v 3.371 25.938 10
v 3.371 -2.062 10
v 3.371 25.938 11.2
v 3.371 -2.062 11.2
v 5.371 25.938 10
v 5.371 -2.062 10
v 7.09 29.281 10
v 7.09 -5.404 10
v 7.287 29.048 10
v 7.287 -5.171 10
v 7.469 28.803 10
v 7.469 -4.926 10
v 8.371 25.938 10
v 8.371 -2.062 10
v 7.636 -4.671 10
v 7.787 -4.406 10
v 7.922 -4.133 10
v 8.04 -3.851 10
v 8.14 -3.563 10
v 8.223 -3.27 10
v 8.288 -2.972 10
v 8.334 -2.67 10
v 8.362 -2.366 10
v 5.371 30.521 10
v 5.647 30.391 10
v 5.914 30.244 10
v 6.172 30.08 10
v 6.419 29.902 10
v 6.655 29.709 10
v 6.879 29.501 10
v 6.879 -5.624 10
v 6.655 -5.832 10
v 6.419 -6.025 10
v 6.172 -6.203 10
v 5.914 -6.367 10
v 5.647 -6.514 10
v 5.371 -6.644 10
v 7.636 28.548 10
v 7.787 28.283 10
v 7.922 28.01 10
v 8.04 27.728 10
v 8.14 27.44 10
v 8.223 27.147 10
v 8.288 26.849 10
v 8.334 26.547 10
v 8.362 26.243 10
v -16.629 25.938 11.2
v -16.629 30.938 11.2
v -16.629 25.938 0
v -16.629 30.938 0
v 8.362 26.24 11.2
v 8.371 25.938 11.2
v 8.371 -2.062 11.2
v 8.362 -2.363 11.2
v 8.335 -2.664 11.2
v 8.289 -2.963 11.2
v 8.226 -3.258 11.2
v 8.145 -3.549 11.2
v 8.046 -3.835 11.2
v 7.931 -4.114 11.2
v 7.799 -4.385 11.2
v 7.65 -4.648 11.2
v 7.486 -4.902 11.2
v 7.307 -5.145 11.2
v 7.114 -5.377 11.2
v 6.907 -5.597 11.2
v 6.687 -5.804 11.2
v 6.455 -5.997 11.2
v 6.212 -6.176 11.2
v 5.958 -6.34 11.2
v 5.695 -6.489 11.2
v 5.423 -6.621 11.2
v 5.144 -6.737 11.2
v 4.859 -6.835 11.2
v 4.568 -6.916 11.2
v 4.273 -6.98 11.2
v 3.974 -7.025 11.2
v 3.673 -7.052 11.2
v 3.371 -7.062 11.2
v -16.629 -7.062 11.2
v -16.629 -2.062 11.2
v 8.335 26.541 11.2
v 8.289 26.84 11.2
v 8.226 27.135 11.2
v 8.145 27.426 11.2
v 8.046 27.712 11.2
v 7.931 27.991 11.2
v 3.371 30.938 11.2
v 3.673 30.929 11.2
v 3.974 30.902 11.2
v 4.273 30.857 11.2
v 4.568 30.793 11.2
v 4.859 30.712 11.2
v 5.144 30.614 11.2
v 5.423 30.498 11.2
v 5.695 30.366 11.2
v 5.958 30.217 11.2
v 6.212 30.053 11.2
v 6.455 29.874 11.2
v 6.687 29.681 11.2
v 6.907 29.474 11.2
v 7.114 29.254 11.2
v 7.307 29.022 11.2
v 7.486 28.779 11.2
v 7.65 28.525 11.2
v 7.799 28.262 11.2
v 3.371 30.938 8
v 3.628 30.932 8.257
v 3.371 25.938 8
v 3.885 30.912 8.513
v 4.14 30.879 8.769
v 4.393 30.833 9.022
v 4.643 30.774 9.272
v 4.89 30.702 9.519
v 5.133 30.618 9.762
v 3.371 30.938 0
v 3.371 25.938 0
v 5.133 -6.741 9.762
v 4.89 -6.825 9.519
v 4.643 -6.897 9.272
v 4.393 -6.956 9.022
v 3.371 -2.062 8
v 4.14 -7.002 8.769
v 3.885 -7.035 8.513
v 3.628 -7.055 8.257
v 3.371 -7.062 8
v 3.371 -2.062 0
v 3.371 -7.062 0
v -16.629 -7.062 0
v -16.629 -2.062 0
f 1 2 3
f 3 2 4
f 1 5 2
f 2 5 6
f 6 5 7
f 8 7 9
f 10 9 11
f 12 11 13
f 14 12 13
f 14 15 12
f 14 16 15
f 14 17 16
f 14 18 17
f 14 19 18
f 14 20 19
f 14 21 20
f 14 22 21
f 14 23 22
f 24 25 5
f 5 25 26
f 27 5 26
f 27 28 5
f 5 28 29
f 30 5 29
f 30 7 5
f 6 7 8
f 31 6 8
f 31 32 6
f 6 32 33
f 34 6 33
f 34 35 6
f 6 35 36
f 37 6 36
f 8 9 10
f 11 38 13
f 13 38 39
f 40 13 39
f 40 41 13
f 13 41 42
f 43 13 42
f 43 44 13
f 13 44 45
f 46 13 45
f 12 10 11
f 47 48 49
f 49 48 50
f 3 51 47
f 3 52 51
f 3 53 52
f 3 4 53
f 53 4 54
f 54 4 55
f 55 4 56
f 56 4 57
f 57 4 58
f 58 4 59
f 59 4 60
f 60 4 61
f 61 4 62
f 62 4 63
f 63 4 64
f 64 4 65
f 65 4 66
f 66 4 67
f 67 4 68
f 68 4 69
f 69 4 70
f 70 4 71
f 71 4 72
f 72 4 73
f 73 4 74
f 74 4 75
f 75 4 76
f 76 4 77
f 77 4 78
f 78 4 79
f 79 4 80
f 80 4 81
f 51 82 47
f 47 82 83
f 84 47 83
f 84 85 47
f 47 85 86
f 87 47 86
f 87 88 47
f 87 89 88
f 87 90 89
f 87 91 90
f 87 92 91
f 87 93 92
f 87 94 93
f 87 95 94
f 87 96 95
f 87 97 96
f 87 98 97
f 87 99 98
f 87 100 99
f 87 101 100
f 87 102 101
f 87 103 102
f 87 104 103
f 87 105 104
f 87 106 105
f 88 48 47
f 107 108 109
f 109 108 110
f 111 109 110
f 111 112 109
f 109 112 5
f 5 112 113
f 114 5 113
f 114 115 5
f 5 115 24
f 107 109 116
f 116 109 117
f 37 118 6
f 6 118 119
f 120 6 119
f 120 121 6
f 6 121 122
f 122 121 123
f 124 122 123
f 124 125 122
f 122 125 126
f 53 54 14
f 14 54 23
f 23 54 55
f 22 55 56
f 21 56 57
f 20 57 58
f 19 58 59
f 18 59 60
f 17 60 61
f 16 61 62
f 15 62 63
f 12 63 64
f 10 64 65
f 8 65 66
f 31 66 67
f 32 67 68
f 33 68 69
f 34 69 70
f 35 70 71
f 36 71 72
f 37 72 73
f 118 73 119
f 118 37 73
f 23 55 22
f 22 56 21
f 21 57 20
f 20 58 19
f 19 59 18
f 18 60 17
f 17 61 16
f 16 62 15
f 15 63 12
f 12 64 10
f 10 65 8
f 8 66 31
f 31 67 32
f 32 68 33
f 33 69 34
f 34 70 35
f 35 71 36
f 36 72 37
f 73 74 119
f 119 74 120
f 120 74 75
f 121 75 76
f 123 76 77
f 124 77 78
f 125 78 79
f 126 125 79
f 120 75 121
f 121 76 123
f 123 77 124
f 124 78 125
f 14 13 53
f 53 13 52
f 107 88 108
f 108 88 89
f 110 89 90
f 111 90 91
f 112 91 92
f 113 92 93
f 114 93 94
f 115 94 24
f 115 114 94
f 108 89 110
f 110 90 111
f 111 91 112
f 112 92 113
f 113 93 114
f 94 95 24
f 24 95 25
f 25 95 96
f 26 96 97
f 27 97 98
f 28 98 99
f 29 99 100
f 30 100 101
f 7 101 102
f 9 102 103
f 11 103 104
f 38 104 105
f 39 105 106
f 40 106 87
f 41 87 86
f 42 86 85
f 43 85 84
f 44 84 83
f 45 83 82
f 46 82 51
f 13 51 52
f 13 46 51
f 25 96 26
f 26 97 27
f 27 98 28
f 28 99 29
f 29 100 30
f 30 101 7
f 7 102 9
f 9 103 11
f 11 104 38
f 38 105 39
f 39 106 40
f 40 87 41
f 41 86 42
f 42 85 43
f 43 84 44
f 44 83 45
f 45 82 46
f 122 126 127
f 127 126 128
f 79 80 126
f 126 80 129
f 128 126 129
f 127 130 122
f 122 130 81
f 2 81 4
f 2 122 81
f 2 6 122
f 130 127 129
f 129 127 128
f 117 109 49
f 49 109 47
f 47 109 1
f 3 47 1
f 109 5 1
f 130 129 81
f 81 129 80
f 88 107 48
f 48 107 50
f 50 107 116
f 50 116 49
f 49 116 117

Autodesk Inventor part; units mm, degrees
ref_plane "YZ Plane" through (0, 0, 0) normal (1, 0, 0) x (0, 1, 0)
ref_plane "XZ Plane" through (0, 0, 0) normal (0, 1, 0) x (-1, 0, 0)
ref_plane "XY Plane" through (0, 0, 0) normal (0, 0, 1) x (1, 0, 0)
sketch "Sketch1" plane through (0, 0, 0) normal (0, 0, 1) x (1, 0, 0)
  line L0 (-16.6287, 30.9385) -> (3.3713, 30.9385)
  line L1 (3.3713, 30.9385) -> (3.3713, 25.9385)
  line L2 (3.3713, 25.9385) -> (-16.6287, 25.9385)
  line L3 (-16.6287, 25.9385) -> (-16.6287, 30.9385)
  line L4 (-16.6287, -2.0615) -> (3.3713, -2.0615)
  line L5 (3.3713, -2.0615) -> (3.3713, -7.0615)
  line L6 (3.3713, -7.0615) -> (-16.6287, -7.0615)
  line L7 (-16.6287, -7.0615) -> (-16.6287, -2.0615)
  point P0 (0, 0)
  dimension "d0" = 20
  dimension "d1" = 5
  dimension "d2" = 5
  dimension "d3" = 20
  dimension "d4" = 38
extrude "Extrusion1" add sketch "Sketch1" along normal blind 10
sketch "Sketch2" plane through (0, 0, 10) normal (0, 0, 1) x (1, 0, 0)
  line L0 (-16.6287, 30.9385) -> (8.3713, 30.9385)
  line L1 (8.3713, 30.9385) -> (8.3713, -7.0615)
  line L2 (8.3713, -7.0615) -> (-16.6287, -7.0615)
  line L3 (-16.6287, -7.0615) -> (-16.6287, 30.9385)
  line L4 (-16.6287, -7.0615) -> (3.3713, -7.0615) projected
  point P0 (0, 0)
  dimension "d7" = 25
extrude "Extrusion2" add sketch "Sketch2" along normal blind 1.2
fillet "Fillet1" radius 5 2 edges at (8.3713, 30.9385, 10.6) (8.3713, -7.0615, 10.6)
chamfer "Chamfer1" distance 2 angle 45 2 edges at (3.3713, -4.5615, 10) (3.3713, 28.4385, 10)
sketch "Sketch3" plane through (0, 0, 10) normal (0, 0, -1) x (-1, 0, 0)
  line L0 (16.6287, -2.0615) -> (-3.3713, -2.0615)
  line L1 (-3.3713, -2.0615) -> (-3.3713, 25.9385)
  line L2 (-3.3713, 25.9385) -> (16.6287, 25.9385)
  line L3 (16.6287, 25.9385) -> (16.6287, -2.0615)
  point P0 (0, 0)
extrude "Extrusion3" cut sketch "Sketch3" against normal blind 1.2
properties part number "Fuse Box Support"
